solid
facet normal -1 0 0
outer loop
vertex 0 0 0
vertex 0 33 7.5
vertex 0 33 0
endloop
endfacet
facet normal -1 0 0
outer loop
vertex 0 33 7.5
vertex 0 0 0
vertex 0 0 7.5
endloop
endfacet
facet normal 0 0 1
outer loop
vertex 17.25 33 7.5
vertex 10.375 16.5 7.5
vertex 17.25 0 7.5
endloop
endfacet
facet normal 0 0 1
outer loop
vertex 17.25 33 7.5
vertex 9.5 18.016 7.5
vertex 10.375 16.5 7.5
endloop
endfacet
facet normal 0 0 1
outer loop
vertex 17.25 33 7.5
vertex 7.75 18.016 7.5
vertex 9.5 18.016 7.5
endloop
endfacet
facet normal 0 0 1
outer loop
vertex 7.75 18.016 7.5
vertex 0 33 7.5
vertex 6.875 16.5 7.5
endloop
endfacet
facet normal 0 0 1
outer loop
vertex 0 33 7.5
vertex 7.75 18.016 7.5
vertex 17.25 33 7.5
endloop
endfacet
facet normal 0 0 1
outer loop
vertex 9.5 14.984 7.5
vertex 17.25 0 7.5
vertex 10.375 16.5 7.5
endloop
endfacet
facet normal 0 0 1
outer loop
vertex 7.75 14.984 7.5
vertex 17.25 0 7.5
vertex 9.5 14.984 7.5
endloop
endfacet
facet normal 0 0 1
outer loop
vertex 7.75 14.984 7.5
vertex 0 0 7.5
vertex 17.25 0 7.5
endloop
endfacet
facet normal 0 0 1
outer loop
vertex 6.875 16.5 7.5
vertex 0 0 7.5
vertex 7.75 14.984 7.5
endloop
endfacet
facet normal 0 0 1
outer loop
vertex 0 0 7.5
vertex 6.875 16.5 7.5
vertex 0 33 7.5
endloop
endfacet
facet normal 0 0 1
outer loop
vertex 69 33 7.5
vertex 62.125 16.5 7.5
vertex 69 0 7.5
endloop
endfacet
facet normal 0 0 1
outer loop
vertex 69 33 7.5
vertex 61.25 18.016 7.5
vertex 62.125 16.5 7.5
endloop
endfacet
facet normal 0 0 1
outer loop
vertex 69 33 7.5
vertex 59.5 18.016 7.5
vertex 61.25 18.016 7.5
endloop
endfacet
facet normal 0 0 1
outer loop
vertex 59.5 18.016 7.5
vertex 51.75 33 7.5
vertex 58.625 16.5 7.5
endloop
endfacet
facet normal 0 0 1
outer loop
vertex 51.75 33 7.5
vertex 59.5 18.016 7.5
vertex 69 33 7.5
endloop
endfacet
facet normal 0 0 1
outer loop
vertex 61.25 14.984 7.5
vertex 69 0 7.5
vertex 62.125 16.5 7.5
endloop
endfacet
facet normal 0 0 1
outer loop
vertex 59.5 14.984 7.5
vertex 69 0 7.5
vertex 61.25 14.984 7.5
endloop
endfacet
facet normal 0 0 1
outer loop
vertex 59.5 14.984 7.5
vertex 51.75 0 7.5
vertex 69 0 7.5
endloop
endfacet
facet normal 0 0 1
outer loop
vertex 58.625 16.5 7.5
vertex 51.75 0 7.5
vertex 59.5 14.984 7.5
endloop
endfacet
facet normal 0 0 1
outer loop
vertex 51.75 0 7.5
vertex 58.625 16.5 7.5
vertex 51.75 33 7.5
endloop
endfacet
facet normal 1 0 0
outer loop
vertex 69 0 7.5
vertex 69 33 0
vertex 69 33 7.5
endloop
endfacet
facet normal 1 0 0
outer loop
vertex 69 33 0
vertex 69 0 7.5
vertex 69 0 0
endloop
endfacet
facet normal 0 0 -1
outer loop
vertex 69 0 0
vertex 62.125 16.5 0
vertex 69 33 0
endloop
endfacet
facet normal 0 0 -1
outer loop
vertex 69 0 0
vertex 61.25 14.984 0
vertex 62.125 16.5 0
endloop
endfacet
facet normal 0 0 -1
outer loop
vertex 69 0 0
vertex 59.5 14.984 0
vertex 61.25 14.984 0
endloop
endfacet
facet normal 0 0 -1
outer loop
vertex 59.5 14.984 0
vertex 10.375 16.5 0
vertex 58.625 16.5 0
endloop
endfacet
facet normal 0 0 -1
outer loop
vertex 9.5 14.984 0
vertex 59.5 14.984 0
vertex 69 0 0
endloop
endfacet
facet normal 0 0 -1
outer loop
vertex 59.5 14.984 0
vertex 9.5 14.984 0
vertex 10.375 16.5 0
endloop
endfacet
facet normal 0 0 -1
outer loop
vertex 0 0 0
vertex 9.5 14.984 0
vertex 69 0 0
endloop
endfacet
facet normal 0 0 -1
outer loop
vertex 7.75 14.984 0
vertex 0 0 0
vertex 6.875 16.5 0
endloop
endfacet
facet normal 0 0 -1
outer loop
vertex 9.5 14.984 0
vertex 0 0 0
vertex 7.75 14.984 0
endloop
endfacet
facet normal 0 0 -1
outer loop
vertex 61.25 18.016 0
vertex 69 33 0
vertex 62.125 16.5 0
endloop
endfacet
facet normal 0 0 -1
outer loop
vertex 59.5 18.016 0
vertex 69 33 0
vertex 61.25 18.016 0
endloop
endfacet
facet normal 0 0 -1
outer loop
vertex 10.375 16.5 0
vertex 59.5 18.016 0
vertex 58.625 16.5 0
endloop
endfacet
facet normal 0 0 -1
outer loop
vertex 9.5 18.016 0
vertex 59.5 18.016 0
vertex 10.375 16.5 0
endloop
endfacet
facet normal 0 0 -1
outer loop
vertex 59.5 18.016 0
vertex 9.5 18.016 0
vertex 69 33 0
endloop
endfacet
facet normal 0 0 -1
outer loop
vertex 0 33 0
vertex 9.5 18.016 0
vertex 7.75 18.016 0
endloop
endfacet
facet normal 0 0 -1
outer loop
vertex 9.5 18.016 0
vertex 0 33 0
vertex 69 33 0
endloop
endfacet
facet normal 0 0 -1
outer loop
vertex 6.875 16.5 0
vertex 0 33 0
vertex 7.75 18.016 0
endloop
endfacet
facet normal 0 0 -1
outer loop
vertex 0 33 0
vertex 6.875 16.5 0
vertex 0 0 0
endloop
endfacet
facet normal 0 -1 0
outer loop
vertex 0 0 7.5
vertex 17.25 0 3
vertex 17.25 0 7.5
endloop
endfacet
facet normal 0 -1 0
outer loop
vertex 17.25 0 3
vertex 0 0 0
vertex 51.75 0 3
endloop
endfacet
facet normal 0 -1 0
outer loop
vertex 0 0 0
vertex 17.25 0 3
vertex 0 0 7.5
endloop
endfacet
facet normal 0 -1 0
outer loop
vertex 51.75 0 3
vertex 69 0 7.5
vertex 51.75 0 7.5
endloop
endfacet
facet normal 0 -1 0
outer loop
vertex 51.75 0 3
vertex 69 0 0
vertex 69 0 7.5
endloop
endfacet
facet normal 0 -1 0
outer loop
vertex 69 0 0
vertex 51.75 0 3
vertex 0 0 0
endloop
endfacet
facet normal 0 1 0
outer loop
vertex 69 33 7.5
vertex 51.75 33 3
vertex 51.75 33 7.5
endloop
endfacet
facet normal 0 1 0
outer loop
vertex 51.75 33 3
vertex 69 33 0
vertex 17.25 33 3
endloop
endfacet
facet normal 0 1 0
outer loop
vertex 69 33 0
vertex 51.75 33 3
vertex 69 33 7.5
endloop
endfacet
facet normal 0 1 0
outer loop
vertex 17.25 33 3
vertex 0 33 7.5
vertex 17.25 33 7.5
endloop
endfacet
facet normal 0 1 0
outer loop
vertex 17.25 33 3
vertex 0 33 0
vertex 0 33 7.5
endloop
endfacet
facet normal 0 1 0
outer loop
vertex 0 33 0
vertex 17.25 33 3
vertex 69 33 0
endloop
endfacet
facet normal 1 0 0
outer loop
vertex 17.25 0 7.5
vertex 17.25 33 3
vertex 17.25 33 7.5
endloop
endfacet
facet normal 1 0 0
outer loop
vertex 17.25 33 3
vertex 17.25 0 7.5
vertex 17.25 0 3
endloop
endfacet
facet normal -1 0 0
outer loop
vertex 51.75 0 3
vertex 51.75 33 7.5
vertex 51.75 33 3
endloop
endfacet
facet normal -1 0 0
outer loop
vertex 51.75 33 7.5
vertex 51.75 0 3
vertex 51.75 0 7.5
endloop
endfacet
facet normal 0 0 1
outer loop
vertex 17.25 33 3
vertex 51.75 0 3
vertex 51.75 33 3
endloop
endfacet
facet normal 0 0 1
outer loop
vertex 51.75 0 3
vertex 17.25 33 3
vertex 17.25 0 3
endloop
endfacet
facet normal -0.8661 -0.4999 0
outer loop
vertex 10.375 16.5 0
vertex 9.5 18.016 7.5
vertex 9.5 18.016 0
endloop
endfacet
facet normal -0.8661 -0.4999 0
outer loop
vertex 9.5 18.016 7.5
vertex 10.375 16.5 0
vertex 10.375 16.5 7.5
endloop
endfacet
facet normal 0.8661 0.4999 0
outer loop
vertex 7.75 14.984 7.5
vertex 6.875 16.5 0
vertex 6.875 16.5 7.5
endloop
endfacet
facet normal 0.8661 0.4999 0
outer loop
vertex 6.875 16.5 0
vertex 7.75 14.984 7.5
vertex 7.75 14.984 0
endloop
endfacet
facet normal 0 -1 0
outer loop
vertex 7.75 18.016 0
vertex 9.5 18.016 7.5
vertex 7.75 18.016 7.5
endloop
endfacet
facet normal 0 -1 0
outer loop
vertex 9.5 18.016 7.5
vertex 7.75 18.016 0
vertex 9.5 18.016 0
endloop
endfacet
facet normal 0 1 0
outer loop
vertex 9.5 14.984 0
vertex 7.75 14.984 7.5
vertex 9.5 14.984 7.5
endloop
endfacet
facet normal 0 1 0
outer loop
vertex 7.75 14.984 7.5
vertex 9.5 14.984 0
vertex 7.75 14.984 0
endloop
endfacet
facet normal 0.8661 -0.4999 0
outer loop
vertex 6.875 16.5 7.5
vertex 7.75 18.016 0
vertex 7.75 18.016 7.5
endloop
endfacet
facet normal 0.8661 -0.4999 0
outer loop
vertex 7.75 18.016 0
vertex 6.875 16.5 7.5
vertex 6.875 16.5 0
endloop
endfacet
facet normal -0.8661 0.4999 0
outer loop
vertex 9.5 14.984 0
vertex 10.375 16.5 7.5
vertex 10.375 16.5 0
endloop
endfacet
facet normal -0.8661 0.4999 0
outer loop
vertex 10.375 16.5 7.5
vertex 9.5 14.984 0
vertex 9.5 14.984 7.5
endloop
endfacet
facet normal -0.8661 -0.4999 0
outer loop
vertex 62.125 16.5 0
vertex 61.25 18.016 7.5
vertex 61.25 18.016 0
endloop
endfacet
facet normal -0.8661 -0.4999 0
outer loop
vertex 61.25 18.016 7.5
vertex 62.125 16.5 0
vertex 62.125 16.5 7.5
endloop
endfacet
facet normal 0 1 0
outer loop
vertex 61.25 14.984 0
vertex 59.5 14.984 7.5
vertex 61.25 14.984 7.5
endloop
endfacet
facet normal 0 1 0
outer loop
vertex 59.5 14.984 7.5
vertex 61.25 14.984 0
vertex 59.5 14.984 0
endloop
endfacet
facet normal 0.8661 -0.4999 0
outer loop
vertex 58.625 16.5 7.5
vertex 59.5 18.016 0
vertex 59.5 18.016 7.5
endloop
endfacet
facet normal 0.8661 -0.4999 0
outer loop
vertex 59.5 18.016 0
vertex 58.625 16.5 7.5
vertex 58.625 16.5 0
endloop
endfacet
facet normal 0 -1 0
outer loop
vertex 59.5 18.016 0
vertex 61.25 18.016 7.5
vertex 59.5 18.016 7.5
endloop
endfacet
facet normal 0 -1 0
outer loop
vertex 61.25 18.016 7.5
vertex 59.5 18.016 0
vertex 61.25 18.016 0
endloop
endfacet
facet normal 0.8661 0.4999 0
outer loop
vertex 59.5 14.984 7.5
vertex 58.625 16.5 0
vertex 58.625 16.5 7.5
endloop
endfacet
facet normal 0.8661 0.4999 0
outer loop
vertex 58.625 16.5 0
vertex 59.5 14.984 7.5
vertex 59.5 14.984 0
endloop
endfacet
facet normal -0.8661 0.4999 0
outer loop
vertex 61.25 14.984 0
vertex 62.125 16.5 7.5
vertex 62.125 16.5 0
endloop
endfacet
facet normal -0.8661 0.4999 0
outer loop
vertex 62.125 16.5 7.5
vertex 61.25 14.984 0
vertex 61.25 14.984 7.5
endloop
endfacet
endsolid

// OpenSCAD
difference() {
    difference() {
        cube([69, 33, 7.5]);
        translate([17.25, 0, 3])
            cube([34.5, 33, 4.5]);
    }
    translate([8.625, 16.5, 0]){
        cylinder(h=7.5, d=3.5, center = false);
    }
    translate([60.375, 16.5, 0]){
        cylinder(h=7.5, d=3.5, center = false);
    }
}
